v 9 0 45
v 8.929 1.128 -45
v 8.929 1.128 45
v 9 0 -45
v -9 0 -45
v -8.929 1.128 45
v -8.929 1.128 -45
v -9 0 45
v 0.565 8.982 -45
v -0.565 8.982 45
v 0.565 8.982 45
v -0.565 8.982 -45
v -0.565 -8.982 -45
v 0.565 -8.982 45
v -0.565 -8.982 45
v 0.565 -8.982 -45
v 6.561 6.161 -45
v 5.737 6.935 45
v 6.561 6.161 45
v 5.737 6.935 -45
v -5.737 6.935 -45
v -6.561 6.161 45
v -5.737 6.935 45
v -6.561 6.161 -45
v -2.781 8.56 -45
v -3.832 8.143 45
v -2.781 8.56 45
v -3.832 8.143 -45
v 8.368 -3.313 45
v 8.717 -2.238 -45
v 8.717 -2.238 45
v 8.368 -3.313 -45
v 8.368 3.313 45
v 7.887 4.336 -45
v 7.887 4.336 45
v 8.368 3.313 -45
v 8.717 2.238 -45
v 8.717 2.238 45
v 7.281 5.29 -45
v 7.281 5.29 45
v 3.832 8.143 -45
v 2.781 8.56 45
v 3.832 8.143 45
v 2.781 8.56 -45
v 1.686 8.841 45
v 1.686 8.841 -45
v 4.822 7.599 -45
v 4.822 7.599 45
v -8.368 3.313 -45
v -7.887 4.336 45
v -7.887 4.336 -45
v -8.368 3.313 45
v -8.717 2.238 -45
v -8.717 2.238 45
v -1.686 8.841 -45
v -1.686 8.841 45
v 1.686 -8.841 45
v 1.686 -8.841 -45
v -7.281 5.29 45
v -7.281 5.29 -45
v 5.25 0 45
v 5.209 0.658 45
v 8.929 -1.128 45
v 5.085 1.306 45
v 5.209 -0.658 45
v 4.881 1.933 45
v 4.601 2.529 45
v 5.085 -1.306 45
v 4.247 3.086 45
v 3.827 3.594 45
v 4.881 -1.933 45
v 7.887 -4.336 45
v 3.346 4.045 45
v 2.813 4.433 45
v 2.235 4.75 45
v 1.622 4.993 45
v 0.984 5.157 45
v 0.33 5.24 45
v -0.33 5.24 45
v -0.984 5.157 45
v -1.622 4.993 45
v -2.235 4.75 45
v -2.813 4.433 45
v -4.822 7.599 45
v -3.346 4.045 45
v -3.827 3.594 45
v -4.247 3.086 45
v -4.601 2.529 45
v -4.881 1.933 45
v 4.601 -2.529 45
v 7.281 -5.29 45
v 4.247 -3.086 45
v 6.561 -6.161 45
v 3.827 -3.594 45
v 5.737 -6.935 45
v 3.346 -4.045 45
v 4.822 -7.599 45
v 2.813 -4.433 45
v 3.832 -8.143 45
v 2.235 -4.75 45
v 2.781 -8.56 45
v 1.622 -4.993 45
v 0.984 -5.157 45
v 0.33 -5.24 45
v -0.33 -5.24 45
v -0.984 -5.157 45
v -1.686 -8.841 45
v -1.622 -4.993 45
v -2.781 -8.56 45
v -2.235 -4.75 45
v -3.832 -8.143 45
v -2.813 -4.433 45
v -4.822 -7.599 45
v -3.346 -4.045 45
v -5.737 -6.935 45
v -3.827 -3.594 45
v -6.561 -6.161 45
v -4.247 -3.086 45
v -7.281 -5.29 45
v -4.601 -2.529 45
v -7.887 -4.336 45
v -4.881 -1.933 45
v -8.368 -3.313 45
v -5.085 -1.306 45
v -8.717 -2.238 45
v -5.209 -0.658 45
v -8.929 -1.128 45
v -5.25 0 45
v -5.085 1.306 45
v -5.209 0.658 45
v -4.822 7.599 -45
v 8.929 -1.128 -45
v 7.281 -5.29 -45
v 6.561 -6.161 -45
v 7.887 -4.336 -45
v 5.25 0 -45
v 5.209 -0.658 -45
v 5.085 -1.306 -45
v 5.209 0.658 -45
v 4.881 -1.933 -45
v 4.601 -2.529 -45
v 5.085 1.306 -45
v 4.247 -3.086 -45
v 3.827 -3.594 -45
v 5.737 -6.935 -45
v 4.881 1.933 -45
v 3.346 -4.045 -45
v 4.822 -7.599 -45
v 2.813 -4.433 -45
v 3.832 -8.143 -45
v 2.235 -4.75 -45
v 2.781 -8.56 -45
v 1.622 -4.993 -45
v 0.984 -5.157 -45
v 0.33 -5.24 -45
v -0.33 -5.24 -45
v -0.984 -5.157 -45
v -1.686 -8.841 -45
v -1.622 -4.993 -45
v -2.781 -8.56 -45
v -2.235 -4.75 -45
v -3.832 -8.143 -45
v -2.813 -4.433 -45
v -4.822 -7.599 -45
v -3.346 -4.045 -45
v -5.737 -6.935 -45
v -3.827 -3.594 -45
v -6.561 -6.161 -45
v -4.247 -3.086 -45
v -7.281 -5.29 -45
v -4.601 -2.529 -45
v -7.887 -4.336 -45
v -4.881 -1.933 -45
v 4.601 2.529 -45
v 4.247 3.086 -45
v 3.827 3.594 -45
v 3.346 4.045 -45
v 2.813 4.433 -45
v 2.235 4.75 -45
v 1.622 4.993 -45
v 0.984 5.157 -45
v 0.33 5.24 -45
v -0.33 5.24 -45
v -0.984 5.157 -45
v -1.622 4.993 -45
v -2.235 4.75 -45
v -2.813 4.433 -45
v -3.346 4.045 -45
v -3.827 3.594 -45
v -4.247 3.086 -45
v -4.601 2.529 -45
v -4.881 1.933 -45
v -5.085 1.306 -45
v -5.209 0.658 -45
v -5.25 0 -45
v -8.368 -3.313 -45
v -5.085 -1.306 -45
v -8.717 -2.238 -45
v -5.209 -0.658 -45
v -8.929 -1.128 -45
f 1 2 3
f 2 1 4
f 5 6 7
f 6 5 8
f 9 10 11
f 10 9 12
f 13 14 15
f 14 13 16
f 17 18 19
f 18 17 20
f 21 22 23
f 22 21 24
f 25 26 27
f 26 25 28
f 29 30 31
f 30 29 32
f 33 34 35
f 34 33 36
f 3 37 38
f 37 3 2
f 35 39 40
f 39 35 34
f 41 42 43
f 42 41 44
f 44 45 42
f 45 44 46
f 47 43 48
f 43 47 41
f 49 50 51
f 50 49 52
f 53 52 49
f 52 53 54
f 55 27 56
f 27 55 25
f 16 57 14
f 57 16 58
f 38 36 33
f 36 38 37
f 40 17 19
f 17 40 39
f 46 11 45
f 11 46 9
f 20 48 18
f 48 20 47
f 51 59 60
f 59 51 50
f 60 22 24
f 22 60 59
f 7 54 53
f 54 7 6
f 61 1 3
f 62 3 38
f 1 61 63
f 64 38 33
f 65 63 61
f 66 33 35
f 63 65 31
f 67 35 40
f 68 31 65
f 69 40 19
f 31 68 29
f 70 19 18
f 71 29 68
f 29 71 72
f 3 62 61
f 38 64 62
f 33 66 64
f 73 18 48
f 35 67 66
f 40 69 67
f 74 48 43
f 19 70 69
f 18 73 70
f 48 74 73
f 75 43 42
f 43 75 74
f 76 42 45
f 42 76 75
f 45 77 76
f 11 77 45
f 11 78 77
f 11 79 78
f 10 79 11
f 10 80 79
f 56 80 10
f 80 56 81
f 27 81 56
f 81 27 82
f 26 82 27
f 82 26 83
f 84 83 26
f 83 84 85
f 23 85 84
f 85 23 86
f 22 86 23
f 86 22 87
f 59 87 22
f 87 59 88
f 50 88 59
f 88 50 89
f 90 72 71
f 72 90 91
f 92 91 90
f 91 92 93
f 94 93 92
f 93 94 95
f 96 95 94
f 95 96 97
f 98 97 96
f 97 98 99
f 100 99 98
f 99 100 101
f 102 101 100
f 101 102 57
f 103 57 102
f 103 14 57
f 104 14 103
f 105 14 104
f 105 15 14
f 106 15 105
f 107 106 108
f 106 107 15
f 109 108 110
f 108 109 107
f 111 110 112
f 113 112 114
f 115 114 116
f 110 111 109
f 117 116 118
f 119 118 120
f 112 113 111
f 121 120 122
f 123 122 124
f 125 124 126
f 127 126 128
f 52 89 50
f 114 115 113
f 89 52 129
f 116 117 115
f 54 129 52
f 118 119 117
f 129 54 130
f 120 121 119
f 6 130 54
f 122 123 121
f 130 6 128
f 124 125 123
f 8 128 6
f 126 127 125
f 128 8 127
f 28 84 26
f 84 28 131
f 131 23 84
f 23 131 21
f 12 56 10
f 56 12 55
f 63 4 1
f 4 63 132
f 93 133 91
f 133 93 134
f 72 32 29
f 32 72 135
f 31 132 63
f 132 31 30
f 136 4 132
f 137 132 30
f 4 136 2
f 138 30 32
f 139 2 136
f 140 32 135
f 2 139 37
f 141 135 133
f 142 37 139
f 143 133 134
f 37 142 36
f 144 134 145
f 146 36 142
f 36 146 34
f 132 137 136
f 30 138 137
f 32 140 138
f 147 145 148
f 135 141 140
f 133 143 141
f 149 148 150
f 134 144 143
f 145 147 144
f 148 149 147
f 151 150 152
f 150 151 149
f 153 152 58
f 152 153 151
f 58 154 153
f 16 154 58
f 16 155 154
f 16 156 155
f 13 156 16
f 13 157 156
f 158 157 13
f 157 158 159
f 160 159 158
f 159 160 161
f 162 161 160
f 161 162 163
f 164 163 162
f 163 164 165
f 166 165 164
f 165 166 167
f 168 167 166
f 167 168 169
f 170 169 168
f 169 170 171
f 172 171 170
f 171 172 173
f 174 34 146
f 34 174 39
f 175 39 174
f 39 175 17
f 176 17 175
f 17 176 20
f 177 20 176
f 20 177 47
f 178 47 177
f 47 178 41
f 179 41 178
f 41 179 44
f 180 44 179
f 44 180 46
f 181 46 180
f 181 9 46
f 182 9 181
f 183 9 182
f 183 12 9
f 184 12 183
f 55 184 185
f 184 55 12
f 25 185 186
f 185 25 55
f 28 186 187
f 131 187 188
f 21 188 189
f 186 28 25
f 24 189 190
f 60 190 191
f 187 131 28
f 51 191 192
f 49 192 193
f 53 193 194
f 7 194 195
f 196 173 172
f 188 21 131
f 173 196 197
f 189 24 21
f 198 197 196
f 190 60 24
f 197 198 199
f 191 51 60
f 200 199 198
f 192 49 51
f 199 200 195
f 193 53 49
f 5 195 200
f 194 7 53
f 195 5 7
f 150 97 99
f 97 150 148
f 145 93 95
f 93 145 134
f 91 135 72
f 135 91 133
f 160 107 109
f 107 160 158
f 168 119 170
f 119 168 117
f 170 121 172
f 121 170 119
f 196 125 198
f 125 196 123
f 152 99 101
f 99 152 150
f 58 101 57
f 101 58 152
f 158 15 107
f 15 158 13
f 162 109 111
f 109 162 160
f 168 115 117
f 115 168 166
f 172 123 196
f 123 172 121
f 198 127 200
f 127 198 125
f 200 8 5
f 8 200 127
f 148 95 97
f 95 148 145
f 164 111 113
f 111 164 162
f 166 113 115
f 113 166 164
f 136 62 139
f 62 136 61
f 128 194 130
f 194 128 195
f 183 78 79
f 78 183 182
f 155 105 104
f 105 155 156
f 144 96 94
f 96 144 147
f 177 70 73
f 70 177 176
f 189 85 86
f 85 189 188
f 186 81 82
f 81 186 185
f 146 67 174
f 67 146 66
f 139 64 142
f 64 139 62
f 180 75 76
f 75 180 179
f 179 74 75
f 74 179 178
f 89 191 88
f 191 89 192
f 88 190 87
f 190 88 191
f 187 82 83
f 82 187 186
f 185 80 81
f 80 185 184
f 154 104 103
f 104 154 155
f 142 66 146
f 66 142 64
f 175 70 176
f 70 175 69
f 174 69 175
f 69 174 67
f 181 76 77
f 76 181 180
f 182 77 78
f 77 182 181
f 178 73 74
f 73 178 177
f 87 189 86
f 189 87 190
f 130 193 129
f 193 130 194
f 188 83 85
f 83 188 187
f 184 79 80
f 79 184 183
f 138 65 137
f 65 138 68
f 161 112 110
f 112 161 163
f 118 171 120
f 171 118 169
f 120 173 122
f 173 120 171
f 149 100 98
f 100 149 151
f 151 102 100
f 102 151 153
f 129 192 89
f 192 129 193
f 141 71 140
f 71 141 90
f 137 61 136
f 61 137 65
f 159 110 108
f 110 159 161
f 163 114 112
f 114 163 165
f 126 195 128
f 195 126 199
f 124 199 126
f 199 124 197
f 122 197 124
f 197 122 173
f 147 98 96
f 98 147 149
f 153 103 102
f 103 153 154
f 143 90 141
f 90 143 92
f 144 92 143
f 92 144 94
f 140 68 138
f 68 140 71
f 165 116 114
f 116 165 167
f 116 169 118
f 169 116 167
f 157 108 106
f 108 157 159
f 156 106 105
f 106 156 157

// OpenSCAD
$fn = 50;


difference() {
	union() {
		translate(v = [0, 0, -45.0000000000]) {
			cylinder(h = 90, r = 9.0000000000);
		}
	}
	union() {
		translate(v = [0, 0, -100.0000000000]) {
			cylinder(h = 200, r = 5.2500000000);
		}
	}
}
